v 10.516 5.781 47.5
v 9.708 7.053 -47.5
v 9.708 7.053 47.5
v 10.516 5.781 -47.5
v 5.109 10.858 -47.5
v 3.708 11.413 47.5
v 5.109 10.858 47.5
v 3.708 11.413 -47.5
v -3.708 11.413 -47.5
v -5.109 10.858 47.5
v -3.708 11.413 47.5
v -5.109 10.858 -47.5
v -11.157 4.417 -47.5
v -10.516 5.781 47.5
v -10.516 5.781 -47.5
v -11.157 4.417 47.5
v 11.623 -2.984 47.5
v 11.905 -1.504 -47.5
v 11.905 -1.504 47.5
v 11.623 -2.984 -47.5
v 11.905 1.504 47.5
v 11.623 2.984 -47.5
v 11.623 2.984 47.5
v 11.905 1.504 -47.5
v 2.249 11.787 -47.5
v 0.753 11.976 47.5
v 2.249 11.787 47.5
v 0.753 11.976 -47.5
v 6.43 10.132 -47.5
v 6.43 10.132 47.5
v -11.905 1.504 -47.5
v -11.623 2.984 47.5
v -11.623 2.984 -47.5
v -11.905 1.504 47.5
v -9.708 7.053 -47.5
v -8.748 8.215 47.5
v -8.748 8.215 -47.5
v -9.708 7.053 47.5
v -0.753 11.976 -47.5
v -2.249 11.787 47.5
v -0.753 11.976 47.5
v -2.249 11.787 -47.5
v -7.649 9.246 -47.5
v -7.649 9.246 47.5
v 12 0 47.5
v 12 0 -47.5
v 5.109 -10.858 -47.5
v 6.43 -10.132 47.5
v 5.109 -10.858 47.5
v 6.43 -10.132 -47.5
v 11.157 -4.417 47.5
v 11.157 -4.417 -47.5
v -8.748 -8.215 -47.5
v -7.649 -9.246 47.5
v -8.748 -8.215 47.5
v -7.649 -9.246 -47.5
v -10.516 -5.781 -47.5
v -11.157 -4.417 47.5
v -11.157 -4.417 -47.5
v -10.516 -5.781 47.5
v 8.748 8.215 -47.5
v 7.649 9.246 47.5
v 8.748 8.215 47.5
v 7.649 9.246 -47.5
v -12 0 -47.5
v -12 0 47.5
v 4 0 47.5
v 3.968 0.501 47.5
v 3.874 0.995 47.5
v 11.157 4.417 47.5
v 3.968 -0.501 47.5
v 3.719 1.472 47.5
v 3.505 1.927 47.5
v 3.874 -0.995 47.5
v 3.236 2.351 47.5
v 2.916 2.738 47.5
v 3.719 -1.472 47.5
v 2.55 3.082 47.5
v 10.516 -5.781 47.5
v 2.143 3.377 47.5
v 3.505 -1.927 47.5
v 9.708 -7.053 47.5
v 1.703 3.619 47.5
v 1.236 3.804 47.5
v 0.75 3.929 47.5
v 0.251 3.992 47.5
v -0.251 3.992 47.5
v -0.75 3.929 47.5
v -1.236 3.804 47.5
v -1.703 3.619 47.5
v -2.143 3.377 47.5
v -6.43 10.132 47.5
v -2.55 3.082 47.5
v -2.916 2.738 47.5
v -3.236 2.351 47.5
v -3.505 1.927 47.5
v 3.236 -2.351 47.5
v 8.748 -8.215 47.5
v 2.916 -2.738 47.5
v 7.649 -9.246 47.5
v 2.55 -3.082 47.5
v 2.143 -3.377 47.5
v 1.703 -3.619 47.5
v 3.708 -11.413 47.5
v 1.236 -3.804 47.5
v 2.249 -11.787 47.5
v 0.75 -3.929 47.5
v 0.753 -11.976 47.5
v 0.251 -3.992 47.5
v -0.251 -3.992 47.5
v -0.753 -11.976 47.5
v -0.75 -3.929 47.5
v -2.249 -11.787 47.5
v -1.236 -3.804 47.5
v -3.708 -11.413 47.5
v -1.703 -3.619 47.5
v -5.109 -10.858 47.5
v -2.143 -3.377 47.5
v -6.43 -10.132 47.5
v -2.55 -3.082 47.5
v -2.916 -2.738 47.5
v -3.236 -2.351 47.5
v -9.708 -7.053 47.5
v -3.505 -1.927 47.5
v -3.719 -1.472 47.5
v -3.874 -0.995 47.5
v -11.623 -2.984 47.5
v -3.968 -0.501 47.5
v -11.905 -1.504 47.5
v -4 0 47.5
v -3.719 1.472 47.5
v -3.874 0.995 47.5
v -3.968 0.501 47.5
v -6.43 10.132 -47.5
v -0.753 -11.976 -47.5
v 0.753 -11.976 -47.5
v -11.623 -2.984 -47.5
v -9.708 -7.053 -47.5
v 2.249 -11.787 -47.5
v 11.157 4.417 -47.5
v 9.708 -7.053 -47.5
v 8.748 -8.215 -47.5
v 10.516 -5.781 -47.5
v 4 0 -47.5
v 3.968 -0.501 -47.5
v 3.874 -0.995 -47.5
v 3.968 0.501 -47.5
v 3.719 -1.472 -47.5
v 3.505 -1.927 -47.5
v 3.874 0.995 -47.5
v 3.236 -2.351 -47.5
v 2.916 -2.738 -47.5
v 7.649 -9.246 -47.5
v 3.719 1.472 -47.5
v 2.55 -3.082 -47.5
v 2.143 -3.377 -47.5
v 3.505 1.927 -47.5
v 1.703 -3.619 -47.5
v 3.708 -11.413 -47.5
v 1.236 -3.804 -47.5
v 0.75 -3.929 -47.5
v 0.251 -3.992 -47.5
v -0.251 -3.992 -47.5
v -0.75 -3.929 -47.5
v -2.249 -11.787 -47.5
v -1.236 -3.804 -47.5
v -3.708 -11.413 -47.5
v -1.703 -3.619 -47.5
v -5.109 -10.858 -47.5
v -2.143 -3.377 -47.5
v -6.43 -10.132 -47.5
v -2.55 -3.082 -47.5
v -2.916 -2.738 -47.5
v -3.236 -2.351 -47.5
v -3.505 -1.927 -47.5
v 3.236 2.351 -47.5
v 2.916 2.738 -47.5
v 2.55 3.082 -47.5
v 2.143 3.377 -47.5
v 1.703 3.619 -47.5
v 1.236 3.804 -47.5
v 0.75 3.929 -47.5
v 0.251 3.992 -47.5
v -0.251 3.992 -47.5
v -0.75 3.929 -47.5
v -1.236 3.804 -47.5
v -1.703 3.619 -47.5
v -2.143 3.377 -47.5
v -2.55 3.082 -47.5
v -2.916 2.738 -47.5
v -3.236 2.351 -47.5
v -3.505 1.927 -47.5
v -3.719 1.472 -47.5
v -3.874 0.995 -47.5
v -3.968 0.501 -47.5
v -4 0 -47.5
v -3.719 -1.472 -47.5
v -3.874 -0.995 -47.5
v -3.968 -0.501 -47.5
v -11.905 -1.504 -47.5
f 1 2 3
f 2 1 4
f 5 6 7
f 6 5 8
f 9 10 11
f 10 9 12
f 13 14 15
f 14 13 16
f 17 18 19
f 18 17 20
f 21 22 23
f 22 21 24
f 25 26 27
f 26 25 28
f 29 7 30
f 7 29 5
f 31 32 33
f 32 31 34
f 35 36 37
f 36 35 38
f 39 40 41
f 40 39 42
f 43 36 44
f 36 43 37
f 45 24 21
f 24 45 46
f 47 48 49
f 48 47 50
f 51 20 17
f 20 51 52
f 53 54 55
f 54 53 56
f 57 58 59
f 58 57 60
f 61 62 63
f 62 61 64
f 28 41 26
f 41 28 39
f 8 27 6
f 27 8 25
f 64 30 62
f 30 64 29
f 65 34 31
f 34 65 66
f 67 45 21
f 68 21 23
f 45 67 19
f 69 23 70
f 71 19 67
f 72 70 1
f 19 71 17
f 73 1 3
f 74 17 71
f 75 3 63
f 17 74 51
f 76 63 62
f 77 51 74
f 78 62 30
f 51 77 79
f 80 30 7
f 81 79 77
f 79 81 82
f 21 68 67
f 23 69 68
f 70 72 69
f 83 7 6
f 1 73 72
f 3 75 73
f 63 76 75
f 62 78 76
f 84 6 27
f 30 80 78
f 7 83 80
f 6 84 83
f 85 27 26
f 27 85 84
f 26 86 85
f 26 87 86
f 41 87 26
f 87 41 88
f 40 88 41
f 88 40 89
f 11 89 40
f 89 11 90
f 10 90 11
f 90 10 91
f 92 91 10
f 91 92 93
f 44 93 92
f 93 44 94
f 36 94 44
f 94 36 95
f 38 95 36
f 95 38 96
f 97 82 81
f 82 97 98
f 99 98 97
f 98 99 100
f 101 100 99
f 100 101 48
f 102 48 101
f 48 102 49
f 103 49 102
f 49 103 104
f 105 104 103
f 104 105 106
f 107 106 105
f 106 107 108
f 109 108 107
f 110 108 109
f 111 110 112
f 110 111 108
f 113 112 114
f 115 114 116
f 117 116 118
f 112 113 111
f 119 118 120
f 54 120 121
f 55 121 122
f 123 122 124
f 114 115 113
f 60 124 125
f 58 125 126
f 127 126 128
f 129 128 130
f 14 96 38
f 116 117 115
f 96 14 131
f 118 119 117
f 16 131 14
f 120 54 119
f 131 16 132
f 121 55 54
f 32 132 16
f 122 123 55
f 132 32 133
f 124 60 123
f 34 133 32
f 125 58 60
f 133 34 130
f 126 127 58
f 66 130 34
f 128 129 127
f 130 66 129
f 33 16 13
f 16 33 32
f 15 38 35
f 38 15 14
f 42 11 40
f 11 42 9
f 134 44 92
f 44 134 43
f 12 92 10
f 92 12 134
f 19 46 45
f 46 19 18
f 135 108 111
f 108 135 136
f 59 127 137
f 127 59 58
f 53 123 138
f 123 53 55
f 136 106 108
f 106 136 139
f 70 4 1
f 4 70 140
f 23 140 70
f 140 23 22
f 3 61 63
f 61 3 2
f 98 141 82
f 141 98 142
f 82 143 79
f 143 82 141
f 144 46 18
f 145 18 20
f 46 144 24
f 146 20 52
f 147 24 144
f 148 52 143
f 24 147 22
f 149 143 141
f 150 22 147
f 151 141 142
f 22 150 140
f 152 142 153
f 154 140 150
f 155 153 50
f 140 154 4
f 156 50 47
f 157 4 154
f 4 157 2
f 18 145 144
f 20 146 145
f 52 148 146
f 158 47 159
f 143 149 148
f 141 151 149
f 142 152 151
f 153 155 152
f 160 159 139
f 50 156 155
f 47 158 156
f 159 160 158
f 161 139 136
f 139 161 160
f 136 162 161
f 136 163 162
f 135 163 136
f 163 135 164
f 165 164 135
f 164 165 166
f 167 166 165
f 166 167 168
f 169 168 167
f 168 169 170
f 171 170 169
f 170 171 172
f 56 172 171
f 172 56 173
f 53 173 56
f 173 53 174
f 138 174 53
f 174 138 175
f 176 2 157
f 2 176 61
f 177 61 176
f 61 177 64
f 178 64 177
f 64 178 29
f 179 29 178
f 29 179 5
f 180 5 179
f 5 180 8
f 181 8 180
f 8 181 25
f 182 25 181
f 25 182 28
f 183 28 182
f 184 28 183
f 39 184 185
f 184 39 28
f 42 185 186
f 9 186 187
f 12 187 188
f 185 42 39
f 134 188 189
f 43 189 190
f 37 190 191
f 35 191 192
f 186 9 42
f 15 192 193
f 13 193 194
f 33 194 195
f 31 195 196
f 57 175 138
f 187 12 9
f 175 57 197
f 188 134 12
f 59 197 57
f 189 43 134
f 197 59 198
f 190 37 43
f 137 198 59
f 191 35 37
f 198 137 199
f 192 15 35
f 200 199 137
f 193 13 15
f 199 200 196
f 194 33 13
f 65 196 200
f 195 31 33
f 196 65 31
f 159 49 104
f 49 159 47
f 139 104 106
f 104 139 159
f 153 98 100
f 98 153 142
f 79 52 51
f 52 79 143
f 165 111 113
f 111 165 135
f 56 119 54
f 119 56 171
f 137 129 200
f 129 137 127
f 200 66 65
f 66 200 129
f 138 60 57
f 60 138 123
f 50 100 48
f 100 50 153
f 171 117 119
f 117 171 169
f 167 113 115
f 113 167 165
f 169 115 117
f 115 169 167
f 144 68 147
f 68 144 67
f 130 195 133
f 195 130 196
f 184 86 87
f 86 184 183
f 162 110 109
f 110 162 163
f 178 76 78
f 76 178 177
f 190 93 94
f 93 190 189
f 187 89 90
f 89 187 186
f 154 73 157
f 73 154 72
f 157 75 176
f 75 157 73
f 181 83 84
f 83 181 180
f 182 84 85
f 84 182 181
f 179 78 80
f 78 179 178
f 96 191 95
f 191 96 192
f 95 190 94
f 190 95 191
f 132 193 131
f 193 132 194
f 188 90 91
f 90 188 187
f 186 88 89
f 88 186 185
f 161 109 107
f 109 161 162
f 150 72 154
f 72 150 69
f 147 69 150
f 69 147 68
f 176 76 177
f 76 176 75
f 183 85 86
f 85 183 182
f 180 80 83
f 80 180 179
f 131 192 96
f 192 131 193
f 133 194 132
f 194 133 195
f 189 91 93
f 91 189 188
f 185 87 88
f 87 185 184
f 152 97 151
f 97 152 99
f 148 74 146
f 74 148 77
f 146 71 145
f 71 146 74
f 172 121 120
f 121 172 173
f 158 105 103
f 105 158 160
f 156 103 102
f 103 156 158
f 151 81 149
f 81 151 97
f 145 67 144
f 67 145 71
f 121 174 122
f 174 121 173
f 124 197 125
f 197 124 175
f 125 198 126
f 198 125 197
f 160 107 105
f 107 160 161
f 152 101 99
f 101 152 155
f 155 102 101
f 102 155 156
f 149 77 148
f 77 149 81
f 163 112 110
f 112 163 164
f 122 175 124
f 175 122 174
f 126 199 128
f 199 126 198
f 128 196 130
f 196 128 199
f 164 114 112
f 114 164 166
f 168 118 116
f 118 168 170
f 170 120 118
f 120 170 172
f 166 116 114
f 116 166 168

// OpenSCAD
$fn = 50;


difference() {
	union() {
		translate(v = [0, 0, -47.5000000000]) {
			cylinder(h = 95, r = 12.0000000000);
		}
	}
	union() {
		translate(v = [0, 0, -100.0000000000]) {
			cylinder(h = 200, r = 4);
		}
	}
}
